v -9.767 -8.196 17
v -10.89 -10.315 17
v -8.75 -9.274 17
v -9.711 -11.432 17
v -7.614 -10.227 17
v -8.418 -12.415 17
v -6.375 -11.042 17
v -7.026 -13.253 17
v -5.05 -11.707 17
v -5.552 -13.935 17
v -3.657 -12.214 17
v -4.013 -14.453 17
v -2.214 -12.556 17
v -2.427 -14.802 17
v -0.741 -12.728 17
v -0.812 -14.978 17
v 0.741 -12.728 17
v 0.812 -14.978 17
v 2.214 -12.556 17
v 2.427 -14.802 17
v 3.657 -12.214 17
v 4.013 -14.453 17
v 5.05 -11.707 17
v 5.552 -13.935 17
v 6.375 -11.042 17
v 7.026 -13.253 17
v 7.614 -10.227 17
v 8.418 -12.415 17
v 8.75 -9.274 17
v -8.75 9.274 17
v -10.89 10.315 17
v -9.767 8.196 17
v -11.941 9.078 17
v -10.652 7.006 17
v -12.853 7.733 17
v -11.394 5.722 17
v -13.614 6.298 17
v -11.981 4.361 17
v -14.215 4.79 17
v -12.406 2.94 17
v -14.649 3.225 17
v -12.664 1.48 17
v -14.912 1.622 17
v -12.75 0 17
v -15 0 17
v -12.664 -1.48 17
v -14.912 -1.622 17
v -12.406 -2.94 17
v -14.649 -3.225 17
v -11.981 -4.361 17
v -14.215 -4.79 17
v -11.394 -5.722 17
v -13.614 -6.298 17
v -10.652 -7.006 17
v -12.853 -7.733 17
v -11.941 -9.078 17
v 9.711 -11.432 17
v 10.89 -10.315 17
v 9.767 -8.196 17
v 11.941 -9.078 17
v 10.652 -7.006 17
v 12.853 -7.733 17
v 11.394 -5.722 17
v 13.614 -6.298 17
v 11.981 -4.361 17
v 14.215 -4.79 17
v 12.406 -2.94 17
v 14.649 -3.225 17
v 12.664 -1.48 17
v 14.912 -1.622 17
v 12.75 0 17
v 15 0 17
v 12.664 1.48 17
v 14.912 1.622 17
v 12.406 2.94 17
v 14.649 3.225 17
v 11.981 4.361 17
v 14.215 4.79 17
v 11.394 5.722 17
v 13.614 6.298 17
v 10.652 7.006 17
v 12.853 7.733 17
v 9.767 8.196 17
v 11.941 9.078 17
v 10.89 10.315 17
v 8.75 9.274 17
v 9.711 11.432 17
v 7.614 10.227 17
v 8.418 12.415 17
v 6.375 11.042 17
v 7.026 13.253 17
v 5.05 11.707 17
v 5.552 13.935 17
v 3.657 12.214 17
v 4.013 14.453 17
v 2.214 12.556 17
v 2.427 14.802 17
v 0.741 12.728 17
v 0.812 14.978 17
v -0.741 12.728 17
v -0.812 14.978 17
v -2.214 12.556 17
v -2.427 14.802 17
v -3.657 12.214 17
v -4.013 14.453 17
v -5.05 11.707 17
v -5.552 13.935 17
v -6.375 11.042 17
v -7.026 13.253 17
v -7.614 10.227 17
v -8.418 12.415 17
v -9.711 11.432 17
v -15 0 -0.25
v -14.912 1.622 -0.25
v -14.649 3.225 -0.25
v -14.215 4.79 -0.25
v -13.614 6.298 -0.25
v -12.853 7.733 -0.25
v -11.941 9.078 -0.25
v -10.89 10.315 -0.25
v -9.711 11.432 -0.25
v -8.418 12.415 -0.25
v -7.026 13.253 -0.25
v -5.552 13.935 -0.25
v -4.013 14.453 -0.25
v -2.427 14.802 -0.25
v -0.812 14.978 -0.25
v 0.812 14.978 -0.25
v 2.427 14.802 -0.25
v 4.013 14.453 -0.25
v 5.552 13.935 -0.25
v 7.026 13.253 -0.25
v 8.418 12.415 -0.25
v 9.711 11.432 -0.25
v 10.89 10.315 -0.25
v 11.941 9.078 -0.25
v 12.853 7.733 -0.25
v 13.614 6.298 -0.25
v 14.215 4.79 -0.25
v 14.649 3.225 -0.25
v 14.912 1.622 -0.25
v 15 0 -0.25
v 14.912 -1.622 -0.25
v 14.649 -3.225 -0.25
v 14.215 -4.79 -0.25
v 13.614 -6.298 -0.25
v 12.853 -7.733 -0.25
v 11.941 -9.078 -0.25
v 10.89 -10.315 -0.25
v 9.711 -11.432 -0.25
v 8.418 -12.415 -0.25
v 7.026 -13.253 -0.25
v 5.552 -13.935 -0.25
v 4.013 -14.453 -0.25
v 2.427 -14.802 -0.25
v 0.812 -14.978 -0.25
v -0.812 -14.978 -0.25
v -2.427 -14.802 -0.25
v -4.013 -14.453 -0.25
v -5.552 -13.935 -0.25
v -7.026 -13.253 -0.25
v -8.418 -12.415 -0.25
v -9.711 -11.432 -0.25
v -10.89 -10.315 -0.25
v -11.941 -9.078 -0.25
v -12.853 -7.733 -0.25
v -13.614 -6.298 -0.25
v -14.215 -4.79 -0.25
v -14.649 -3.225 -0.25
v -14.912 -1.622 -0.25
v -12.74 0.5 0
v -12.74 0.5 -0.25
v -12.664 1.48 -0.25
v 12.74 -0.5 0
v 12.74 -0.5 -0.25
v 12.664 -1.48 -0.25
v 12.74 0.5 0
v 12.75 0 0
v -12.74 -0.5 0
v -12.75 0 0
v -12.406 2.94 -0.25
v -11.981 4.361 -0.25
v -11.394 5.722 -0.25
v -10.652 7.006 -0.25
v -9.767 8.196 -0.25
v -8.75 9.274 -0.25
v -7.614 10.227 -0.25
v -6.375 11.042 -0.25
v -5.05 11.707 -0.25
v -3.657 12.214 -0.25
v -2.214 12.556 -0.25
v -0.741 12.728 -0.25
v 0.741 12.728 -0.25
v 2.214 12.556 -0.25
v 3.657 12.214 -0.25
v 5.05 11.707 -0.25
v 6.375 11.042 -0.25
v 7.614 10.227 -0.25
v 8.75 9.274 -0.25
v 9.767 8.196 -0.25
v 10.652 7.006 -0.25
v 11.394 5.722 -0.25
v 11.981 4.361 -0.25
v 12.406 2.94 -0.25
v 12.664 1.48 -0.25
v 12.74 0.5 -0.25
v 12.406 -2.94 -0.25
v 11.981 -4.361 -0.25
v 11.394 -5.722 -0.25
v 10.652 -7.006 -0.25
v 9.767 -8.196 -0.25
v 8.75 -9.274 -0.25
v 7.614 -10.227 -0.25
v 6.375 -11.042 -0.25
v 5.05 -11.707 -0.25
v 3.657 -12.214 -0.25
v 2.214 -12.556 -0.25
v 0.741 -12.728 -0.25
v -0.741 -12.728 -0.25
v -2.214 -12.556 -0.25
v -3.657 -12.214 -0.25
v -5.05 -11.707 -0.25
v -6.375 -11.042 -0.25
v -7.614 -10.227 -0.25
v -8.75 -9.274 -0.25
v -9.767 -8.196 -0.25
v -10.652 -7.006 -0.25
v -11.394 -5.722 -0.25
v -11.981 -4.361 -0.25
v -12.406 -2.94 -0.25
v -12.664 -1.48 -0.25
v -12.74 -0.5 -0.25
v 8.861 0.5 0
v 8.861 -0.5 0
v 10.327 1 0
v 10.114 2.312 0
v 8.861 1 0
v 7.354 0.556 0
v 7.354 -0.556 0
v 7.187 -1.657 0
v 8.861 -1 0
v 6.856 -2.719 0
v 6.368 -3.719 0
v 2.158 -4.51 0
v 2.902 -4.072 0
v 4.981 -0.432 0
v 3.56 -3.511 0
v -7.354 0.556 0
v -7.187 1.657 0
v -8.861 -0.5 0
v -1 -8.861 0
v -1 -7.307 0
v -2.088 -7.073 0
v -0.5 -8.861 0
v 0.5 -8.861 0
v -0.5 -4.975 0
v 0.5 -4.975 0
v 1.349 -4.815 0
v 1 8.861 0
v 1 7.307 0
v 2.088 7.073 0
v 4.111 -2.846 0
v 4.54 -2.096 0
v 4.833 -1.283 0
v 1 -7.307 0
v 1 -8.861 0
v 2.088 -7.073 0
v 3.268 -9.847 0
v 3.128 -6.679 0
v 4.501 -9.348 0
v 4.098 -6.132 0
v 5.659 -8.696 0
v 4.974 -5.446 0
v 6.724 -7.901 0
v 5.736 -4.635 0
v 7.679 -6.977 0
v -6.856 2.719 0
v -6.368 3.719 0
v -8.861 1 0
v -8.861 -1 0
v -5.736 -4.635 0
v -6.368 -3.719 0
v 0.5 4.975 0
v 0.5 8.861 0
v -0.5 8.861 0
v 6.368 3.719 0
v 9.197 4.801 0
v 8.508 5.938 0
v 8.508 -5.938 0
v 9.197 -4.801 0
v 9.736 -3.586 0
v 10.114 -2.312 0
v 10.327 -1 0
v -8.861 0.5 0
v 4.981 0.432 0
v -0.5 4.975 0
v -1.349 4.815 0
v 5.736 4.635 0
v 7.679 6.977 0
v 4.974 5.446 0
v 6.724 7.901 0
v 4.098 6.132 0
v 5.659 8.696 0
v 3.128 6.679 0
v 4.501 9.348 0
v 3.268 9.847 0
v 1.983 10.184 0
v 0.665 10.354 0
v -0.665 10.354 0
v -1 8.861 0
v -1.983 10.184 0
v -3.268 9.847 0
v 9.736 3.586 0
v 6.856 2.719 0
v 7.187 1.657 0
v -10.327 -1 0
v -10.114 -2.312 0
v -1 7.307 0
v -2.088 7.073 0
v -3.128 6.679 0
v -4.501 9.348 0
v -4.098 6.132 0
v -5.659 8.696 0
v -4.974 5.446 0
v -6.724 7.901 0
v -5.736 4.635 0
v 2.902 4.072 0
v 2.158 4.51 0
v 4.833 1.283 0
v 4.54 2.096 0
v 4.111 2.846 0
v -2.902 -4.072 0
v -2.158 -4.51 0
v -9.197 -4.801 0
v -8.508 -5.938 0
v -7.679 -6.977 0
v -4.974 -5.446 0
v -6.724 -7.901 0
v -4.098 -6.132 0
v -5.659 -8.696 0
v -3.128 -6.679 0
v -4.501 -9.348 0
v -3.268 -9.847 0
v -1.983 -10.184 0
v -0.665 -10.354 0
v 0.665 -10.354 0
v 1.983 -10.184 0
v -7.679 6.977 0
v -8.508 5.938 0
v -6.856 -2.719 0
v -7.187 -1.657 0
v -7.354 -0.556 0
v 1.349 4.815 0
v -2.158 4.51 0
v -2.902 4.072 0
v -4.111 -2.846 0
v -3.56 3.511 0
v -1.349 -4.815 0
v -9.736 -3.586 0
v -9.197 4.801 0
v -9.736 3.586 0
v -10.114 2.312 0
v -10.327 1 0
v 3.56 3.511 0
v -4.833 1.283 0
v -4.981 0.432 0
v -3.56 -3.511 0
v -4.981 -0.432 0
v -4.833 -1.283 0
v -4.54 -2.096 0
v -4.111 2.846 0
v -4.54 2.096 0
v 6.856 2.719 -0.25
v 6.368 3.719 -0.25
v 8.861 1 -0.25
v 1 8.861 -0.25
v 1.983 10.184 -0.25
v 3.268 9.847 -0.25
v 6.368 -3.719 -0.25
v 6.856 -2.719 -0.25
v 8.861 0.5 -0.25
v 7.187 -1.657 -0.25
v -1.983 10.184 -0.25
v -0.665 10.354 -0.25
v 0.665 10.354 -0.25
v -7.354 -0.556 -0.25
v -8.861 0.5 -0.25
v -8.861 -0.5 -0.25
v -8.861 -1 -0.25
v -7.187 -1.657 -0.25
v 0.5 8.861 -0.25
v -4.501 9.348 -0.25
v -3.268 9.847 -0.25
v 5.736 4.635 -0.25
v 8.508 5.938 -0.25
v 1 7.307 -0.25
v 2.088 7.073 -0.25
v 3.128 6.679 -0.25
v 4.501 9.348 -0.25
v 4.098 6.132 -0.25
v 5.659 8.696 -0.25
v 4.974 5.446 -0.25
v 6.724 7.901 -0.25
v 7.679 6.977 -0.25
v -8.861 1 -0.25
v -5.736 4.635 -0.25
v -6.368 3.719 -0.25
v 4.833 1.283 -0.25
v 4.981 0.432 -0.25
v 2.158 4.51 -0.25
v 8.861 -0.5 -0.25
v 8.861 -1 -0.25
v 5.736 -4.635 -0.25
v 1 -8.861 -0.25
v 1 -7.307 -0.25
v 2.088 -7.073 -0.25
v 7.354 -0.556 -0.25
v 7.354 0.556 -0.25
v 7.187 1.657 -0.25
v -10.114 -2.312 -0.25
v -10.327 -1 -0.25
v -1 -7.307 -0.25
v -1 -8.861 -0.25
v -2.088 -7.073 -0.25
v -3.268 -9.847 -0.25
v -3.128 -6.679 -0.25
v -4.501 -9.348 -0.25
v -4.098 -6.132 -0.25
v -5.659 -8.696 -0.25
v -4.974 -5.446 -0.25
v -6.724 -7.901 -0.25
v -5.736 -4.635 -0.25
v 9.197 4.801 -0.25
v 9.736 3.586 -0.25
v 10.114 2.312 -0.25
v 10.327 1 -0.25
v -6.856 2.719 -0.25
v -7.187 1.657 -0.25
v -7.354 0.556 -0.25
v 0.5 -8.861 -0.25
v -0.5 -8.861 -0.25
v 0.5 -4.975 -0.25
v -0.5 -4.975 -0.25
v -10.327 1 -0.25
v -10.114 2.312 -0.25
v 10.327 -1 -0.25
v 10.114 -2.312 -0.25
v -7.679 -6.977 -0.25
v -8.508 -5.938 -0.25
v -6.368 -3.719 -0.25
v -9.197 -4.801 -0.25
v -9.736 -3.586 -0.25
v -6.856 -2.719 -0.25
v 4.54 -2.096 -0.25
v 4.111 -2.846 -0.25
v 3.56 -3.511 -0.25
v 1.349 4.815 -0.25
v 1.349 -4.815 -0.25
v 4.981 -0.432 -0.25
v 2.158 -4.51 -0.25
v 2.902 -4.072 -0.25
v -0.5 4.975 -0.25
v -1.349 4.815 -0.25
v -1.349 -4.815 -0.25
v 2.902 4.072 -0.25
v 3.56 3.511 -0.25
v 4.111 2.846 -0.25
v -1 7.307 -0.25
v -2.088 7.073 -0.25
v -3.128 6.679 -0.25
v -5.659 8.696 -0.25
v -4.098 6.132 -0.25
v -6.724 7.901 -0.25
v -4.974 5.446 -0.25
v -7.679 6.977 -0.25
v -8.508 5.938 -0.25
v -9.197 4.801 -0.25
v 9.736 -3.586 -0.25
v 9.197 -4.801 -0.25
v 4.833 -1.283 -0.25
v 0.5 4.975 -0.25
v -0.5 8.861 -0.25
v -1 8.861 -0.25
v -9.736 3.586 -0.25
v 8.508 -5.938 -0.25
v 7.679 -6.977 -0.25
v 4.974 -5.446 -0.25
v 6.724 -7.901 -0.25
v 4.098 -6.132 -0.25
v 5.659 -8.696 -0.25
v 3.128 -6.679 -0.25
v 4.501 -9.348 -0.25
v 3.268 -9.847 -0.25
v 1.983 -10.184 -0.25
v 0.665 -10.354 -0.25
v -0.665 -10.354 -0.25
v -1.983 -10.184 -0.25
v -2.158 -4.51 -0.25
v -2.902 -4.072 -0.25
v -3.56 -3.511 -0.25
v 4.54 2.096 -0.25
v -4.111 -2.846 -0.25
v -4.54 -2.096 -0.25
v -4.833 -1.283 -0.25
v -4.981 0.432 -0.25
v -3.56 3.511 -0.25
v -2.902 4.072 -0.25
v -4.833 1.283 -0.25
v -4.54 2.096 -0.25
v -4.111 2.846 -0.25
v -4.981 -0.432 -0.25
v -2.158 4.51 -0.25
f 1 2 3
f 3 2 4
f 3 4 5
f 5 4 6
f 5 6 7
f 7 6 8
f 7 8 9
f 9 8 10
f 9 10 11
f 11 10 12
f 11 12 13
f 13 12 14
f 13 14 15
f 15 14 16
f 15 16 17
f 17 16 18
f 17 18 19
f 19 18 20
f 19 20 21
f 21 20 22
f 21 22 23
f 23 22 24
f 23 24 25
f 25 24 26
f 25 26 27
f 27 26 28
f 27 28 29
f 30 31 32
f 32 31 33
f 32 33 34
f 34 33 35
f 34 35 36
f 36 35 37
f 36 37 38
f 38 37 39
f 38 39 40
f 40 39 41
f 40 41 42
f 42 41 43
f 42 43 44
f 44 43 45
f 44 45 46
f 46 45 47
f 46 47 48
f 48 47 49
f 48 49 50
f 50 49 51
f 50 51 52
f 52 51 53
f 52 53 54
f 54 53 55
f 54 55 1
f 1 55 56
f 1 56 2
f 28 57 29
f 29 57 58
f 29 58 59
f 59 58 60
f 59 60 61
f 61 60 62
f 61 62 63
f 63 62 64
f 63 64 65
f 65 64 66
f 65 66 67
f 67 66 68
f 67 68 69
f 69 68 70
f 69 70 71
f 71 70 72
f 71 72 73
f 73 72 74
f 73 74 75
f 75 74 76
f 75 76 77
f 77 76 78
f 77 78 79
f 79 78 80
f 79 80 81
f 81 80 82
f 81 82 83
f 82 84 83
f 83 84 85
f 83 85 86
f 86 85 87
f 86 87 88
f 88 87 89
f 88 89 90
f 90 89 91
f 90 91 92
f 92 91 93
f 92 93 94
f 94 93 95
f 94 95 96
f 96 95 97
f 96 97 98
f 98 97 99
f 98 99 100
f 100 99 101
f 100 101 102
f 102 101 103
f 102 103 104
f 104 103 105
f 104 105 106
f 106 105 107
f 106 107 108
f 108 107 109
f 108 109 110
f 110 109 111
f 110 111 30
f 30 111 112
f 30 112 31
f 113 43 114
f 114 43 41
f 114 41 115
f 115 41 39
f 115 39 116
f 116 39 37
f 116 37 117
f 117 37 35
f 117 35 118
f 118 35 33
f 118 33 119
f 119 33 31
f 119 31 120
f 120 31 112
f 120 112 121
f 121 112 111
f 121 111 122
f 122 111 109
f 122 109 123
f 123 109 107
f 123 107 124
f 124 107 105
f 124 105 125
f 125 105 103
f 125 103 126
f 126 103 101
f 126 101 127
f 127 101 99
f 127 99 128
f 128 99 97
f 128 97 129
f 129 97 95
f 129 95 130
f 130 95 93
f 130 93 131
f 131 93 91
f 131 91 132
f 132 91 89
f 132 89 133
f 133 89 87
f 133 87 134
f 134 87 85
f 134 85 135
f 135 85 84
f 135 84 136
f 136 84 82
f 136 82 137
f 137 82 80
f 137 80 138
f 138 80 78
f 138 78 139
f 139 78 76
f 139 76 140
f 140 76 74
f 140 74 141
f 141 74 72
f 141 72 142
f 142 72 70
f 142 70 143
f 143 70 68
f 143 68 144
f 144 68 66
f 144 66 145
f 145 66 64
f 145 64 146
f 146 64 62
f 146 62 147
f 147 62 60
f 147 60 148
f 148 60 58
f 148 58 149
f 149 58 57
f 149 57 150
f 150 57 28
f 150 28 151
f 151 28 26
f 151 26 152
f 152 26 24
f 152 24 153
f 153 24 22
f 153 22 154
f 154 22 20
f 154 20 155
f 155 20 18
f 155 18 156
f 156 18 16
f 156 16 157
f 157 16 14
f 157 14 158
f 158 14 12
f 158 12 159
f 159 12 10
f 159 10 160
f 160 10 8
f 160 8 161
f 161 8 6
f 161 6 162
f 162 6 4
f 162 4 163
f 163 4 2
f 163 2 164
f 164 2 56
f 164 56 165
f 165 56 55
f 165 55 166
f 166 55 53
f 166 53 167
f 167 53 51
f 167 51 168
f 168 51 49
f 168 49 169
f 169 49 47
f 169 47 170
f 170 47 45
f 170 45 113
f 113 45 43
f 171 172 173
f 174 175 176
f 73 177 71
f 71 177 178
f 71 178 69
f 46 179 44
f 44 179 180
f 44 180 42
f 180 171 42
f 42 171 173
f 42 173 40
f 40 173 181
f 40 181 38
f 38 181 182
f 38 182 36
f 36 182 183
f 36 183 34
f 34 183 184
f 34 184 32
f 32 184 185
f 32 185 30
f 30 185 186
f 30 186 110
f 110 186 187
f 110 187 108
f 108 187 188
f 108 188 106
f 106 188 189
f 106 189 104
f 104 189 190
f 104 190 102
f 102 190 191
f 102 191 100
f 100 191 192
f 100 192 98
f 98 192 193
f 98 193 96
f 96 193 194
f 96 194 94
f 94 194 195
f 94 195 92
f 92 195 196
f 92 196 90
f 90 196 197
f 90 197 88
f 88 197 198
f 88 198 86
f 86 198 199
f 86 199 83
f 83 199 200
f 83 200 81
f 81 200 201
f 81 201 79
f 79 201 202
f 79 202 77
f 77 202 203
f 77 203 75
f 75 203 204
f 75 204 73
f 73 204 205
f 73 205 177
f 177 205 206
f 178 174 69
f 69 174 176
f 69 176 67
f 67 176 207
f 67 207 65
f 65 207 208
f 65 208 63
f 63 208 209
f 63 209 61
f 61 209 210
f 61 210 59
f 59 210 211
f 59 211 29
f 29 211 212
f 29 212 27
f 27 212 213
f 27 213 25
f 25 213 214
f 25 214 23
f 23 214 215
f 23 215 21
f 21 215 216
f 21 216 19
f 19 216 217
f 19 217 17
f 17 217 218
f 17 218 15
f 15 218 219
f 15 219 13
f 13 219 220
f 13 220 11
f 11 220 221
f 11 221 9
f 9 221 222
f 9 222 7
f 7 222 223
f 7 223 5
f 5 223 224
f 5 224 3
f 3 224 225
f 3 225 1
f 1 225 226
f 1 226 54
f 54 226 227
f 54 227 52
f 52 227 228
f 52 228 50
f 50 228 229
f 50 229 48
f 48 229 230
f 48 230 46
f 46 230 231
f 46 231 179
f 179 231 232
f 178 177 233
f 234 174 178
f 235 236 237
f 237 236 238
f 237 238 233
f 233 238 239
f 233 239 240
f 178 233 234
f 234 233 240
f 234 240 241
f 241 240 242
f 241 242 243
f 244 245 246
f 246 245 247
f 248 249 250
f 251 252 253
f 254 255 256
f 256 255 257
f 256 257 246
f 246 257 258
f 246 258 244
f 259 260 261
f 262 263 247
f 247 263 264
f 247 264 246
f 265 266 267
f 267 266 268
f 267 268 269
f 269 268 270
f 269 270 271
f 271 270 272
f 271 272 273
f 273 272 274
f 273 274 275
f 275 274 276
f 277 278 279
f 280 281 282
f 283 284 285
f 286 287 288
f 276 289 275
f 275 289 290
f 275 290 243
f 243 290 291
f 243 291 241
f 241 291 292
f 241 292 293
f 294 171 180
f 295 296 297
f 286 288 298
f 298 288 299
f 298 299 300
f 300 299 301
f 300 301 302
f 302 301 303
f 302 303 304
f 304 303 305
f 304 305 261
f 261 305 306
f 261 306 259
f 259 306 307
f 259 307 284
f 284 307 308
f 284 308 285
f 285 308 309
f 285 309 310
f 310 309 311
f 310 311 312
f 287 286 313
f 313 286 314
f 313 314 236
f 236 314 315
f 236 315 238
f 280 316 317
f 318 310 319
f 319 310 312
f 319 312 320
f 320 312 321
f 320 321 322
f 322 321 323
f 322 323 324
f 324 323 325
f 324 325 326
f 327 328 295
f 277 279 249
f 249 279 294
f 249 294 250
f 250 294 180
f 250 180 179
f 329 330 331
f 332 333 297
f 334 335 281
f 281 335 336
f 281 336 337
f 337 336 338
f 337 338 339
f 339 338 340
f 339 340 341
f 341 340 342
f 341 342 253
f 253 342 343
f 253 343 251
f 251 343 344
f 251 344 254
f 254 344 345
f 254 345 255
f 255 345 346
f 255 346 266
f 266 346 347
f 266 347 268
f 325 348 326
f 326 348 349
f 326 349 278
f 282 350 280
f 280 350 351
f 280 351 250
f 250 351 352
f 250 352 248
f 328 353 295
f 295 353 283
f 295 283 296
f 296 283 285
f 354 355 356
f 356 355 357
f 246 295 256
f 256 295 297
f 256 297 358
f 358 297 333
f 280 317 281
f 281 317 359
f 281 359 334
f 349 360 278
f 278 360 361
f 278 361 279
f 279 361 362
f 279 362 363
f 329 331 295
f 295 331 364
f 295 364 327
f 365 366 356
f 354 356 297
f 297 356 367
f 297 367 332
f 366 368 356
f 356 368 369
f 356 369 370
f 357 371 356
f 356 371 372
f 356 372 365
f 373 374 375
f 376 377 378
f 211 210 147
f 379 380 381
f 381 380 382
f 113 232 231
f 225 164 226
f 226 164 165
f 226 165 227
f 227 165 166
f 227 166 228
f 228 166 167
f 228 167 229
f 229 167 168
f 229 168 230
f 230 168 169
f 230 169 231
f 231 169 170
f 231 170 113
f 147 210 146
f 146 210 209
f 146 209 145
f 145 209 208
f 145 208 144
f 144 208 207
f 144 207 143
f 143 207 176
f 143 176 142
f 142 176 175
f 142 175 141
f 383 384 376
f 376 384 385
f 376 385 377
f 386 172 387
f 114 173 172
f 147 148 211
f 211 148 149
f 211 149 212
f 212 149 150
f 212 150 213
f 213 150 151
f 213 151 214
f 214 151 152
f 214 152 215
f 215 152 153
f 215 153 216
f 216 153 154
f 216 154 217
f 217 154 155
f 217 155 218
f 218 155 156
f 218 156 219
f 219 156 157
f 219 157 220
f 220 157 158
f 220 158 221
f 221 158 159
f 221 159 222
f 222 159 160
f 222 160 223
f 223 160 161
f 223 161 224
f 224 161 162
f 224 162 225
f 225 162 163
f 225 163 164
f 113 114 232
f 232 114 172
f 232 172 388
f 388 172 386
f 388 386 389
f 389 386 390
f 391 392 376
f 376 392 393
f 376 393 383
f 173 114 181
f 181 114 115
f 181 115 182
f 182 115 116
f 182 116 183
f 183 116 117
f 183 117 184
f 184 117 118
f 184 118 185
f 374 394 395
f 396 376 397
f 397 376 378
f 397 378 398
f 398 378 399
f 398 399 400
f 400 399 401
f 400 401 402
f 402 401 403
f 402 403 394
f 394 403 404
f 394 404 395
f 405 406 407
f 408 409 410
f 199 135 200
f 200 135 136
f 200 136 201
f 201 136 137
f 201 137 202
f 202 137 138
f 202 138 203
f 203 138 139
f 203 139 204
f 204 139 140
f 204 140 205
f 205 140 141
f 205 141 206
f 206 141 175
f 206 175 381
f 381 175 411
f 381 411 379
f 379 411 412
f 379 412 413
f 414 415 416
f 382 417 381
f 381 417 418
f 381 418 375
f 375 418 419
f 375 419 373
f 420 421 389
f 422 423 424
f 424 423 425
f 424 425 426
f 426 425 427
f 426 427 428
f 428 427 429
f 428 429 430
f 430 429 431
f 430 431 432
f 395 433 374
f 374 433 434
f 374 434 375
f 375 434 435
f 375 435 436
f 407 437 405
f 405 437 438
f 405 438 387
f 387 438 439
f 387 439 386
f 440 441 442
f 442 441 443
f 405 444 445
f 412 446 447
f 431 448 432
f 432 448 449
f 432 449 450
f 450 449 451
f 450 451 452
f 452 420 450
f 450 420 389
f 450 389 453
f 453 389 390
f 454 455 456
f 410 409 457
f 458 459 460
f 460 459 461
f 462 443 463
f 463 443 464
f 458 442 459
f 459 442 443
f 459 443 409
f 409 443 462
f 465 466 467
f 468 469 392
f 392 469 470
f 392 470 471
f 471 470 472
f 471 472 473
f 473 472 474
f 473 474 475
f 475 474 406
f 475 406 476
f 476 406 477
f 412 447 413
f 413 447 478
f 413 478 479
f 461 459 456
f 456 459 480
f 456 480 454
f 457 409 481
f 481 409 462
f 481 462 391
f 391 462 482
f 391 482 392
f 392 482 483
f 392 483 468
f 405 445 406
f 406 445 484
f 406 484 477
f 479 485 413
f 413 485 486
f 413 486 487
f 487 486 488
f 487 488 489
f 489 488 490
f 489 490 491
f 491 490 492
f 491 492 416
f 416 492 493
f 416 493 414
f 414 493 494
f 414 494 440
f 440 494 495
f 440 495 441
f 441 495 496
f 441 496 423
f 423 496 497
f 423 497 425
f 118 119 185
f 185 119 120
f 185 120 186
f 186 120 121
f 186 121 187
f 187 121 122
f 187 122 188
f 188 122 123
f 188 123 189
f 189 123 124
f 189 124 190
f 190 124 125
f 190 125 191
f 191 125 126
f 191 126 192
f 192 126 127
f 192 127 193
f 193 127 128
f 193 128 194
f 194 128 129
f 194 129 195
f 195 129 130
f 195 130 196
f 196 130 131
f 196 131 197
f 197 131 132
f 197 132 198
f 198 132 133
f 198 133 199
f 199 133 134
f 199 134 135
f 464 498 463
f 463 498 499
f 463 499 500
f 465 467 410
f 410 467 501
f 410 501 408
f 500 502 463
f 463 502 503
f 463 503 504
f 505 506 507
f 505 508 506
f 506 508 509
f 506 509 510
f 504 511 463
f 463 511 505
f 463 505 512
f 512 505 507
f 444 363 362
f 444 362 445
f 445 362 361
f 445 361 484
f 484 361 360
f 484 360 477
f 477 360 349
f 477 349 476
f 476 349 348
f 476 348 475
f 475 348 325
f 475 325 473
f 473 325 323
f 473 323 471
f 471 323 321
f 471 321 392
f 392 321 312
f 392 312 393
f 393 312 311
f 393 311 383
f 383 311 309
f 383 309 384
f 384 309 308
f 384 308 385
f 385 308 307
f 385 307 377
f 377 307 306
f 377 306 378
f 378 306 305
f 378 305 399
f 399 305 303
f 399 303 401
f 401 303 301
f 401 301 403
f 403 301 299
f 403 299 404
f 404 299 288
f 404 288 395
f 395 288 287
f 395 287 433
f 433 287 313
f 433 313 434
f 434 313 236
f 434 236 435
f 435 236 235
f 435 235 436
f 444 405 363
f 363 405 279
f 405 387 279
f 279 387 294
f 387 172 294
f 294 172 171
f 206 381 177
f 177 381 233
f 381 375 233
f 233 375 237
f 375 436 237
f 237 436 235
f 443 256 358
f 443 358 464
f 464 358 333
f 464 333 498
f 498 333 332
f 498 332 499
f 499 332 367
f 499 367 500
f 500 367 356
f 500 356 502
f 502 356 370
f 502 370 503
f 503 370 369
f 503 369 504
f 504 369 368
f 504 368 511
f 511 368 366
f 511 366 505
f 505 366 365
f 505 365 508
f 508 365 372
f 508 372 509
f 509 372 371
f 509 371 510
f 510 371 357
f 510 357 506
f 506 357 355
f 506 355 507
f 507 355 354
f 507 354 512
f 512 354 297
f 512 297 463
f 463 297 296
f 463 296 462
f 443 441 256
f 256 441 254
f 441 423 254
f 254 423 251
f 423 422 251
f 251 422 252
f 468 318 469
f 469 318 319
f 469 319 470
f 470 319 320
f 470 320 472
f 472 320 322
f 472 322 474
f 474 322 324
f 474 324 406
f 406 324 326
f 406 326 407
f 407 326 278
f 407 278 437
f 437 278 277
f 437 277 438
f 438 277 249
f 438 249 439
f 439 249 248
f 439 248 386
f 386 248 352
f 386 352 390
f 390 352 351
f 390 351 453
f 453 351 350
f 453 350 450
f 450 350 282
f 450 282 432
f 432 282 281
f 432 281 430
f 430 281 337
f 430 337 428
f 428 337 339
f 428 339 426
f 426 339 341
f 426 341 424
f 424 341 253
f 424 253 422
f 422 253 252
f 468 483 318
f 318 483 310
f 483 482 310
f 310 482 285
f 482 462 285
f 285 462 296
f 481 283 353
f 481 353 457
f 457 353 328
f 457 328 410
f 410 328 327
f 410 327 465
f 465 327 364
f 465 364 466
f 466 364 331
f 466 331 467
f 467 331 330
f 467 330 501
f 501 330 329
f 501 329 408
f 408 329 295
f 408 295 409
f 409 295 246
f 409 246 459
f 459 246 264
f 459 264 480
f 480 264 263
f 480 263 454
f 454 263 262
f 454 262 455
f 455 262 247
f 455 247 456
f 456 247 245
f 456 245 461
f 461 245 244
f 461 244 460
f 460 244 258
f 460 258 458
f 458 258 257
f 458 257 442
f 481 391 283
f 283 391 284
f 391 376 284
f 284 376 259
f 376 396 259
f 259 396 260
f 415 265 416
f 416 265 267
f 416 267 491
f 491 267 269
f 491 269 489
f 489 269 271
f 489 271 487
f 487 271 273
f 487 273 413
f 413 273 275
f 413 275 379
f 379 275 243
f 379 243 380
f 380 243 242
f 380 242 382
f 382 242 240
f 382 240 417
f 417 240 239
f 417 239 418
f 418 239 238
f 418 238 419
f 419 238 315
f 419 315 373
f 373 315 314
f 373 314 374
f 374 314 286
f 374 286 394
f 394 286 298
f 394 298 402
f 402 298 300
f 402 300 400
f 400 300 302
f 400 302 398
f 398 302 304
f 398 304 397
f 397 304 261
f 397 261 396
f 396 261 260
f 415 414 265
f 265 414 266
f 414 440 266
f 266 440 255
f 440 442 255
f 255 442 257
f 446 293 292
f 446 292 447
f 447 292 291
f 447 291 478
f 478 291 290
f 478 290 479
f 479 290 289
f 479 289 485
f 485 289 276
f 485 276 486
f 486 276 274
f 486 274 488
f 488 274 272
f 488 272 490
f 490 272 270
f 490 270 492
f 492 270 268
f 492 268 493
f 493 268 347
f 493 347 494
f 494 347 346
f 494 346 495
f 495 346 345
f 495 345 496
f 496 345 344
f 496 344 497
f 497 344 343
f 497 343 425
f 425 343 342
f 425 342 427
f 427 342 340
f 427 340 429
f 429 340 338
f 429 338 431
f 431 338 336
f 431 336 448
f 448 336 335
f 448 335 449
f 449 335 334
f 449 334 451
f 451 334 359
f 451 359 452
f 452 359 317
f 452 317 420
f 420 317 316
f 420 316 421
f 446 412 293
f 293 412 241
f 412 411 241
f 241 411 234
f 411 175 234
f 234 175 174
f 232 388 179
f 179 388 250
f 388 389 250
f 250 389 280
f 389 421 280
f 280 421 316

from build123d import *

# Parameters (mm, degrees)
SKETCH1_R           = 15
SKETCH1_R_2         = 12.75
BOSS_EXTRUDE1_DEPTH = 17
SKETCH2_R           = 15
BOSS_EXTRUDE2_DEPTH = 0.25


with BuildPart() as part:
    # Sketch1 → Boss-Extrude1 (new body)
    with BuildSketch(Plane.XY):
        Circle(SKETCH1_R)
        Circle(SKETCH1_R_2, mode=Mode.SUBTRACT)
    extrude(amount=BOSS_EXTRUDE1_DEPTH)

    # Sketch2 → Boss-Extrude2 (add)
    with BuildSketch(Plane.XY):
        Circle(SKETCH2_R)
        with BuildLine():
            Line((-0.5, 4.974937186), (-0.5, 8.860904299))
            Line((-0.5, 8.860904299), (-1, 8.860904299))
            Line((-1, 8.860904299), (-1, 7.306888873))
            ThreePointArc((-1, 7.306888873), (-7.375, 0), (-1, -7.306888873))
            Line((-1, -7.306888873), (-1, -8.860904299))
            Line((-1, -8.860904299), (-0.5, -8.860904299))
            Line((-0.5, -8.860904299), (-0.5, -4.974937186))
            ThreePointArc((-0.5, -4.974937186), (-5, 0), (-0.5, 4.974937186))
        make_face(mode=Mode.SUBTRACT)
        with BuildLine():
            Line((1, 7.306888873), (1, 8.860904299))
            Line((1, 8.860904299), (0.5, 8.860904299))
            Line((0.5, 8.860904299), (0.5, 4.974937186))
            ThreePointArc((0.5, 4.974937186), (5, 0), (0.5, -4.974937186))
            Line((0.5, -4.974937186), (0.5, -8.860904299))
            Line((0.5, -8.860904299), (1, -8.860904299))
            Line((1, -8.860904299), (1, -7.306888873))
            ThreePointArc((1, -7.306888873), (7.375, 0), (1, 7.306888873))
        make_face(mode=Mode.SUBTRACT)
        with BuildLine():
            Line((-12.740192306, 0.5), (-8.860904299, 0.5))
            Line((-8.860904299, 0.5), (-8.860904299, 1))
            Line((-8.860904299, 1), (-10.326694776, 1))
            ThreePointArc((-10.326694776, 1), (0, 10.375), (10.326694776, 1))
            Line((10.326694776, 1), (8.860904299, 1))
            Line((8.860904299, 1), (8.860904299, 0.5))
            Line((8.860904299, 0.5), (12.740192306, 0.5))
            ThreePointArc((12.740192306, 0.5), (0, 12.75), (-12.740192306, 0.5))
        make_face(mode=Mode.SUBTRACT)
        with BuildLine():
            Line((-12.740192306, -0.5), (-8.860904299, -0.5))
            Line((-8.860904299, -0.5), (-8.860904299, -1))
            Line((-8.860904299, -1), (-10.326694776, -1))
            ThreePointArc((-10.326694776, -1), (0, -10.375), (10.326694776, -1))
            Line((10.326694776, -1), (8.860904299, -1))
            Line((8.860904299, -1), (8.860904299, -0.5))
            Line((8.860904299, -0.5), (12.740192306, -0.5))
            ThreePointArc((12.740192306, -0.5), (0, -12.75), (-12.740192306, -0.5))
        make_face(mode=Mode.SUBTRACT)
    extrude(amount=-BOSS_EXTRUDE2_DEPTH)


solid = part.part
